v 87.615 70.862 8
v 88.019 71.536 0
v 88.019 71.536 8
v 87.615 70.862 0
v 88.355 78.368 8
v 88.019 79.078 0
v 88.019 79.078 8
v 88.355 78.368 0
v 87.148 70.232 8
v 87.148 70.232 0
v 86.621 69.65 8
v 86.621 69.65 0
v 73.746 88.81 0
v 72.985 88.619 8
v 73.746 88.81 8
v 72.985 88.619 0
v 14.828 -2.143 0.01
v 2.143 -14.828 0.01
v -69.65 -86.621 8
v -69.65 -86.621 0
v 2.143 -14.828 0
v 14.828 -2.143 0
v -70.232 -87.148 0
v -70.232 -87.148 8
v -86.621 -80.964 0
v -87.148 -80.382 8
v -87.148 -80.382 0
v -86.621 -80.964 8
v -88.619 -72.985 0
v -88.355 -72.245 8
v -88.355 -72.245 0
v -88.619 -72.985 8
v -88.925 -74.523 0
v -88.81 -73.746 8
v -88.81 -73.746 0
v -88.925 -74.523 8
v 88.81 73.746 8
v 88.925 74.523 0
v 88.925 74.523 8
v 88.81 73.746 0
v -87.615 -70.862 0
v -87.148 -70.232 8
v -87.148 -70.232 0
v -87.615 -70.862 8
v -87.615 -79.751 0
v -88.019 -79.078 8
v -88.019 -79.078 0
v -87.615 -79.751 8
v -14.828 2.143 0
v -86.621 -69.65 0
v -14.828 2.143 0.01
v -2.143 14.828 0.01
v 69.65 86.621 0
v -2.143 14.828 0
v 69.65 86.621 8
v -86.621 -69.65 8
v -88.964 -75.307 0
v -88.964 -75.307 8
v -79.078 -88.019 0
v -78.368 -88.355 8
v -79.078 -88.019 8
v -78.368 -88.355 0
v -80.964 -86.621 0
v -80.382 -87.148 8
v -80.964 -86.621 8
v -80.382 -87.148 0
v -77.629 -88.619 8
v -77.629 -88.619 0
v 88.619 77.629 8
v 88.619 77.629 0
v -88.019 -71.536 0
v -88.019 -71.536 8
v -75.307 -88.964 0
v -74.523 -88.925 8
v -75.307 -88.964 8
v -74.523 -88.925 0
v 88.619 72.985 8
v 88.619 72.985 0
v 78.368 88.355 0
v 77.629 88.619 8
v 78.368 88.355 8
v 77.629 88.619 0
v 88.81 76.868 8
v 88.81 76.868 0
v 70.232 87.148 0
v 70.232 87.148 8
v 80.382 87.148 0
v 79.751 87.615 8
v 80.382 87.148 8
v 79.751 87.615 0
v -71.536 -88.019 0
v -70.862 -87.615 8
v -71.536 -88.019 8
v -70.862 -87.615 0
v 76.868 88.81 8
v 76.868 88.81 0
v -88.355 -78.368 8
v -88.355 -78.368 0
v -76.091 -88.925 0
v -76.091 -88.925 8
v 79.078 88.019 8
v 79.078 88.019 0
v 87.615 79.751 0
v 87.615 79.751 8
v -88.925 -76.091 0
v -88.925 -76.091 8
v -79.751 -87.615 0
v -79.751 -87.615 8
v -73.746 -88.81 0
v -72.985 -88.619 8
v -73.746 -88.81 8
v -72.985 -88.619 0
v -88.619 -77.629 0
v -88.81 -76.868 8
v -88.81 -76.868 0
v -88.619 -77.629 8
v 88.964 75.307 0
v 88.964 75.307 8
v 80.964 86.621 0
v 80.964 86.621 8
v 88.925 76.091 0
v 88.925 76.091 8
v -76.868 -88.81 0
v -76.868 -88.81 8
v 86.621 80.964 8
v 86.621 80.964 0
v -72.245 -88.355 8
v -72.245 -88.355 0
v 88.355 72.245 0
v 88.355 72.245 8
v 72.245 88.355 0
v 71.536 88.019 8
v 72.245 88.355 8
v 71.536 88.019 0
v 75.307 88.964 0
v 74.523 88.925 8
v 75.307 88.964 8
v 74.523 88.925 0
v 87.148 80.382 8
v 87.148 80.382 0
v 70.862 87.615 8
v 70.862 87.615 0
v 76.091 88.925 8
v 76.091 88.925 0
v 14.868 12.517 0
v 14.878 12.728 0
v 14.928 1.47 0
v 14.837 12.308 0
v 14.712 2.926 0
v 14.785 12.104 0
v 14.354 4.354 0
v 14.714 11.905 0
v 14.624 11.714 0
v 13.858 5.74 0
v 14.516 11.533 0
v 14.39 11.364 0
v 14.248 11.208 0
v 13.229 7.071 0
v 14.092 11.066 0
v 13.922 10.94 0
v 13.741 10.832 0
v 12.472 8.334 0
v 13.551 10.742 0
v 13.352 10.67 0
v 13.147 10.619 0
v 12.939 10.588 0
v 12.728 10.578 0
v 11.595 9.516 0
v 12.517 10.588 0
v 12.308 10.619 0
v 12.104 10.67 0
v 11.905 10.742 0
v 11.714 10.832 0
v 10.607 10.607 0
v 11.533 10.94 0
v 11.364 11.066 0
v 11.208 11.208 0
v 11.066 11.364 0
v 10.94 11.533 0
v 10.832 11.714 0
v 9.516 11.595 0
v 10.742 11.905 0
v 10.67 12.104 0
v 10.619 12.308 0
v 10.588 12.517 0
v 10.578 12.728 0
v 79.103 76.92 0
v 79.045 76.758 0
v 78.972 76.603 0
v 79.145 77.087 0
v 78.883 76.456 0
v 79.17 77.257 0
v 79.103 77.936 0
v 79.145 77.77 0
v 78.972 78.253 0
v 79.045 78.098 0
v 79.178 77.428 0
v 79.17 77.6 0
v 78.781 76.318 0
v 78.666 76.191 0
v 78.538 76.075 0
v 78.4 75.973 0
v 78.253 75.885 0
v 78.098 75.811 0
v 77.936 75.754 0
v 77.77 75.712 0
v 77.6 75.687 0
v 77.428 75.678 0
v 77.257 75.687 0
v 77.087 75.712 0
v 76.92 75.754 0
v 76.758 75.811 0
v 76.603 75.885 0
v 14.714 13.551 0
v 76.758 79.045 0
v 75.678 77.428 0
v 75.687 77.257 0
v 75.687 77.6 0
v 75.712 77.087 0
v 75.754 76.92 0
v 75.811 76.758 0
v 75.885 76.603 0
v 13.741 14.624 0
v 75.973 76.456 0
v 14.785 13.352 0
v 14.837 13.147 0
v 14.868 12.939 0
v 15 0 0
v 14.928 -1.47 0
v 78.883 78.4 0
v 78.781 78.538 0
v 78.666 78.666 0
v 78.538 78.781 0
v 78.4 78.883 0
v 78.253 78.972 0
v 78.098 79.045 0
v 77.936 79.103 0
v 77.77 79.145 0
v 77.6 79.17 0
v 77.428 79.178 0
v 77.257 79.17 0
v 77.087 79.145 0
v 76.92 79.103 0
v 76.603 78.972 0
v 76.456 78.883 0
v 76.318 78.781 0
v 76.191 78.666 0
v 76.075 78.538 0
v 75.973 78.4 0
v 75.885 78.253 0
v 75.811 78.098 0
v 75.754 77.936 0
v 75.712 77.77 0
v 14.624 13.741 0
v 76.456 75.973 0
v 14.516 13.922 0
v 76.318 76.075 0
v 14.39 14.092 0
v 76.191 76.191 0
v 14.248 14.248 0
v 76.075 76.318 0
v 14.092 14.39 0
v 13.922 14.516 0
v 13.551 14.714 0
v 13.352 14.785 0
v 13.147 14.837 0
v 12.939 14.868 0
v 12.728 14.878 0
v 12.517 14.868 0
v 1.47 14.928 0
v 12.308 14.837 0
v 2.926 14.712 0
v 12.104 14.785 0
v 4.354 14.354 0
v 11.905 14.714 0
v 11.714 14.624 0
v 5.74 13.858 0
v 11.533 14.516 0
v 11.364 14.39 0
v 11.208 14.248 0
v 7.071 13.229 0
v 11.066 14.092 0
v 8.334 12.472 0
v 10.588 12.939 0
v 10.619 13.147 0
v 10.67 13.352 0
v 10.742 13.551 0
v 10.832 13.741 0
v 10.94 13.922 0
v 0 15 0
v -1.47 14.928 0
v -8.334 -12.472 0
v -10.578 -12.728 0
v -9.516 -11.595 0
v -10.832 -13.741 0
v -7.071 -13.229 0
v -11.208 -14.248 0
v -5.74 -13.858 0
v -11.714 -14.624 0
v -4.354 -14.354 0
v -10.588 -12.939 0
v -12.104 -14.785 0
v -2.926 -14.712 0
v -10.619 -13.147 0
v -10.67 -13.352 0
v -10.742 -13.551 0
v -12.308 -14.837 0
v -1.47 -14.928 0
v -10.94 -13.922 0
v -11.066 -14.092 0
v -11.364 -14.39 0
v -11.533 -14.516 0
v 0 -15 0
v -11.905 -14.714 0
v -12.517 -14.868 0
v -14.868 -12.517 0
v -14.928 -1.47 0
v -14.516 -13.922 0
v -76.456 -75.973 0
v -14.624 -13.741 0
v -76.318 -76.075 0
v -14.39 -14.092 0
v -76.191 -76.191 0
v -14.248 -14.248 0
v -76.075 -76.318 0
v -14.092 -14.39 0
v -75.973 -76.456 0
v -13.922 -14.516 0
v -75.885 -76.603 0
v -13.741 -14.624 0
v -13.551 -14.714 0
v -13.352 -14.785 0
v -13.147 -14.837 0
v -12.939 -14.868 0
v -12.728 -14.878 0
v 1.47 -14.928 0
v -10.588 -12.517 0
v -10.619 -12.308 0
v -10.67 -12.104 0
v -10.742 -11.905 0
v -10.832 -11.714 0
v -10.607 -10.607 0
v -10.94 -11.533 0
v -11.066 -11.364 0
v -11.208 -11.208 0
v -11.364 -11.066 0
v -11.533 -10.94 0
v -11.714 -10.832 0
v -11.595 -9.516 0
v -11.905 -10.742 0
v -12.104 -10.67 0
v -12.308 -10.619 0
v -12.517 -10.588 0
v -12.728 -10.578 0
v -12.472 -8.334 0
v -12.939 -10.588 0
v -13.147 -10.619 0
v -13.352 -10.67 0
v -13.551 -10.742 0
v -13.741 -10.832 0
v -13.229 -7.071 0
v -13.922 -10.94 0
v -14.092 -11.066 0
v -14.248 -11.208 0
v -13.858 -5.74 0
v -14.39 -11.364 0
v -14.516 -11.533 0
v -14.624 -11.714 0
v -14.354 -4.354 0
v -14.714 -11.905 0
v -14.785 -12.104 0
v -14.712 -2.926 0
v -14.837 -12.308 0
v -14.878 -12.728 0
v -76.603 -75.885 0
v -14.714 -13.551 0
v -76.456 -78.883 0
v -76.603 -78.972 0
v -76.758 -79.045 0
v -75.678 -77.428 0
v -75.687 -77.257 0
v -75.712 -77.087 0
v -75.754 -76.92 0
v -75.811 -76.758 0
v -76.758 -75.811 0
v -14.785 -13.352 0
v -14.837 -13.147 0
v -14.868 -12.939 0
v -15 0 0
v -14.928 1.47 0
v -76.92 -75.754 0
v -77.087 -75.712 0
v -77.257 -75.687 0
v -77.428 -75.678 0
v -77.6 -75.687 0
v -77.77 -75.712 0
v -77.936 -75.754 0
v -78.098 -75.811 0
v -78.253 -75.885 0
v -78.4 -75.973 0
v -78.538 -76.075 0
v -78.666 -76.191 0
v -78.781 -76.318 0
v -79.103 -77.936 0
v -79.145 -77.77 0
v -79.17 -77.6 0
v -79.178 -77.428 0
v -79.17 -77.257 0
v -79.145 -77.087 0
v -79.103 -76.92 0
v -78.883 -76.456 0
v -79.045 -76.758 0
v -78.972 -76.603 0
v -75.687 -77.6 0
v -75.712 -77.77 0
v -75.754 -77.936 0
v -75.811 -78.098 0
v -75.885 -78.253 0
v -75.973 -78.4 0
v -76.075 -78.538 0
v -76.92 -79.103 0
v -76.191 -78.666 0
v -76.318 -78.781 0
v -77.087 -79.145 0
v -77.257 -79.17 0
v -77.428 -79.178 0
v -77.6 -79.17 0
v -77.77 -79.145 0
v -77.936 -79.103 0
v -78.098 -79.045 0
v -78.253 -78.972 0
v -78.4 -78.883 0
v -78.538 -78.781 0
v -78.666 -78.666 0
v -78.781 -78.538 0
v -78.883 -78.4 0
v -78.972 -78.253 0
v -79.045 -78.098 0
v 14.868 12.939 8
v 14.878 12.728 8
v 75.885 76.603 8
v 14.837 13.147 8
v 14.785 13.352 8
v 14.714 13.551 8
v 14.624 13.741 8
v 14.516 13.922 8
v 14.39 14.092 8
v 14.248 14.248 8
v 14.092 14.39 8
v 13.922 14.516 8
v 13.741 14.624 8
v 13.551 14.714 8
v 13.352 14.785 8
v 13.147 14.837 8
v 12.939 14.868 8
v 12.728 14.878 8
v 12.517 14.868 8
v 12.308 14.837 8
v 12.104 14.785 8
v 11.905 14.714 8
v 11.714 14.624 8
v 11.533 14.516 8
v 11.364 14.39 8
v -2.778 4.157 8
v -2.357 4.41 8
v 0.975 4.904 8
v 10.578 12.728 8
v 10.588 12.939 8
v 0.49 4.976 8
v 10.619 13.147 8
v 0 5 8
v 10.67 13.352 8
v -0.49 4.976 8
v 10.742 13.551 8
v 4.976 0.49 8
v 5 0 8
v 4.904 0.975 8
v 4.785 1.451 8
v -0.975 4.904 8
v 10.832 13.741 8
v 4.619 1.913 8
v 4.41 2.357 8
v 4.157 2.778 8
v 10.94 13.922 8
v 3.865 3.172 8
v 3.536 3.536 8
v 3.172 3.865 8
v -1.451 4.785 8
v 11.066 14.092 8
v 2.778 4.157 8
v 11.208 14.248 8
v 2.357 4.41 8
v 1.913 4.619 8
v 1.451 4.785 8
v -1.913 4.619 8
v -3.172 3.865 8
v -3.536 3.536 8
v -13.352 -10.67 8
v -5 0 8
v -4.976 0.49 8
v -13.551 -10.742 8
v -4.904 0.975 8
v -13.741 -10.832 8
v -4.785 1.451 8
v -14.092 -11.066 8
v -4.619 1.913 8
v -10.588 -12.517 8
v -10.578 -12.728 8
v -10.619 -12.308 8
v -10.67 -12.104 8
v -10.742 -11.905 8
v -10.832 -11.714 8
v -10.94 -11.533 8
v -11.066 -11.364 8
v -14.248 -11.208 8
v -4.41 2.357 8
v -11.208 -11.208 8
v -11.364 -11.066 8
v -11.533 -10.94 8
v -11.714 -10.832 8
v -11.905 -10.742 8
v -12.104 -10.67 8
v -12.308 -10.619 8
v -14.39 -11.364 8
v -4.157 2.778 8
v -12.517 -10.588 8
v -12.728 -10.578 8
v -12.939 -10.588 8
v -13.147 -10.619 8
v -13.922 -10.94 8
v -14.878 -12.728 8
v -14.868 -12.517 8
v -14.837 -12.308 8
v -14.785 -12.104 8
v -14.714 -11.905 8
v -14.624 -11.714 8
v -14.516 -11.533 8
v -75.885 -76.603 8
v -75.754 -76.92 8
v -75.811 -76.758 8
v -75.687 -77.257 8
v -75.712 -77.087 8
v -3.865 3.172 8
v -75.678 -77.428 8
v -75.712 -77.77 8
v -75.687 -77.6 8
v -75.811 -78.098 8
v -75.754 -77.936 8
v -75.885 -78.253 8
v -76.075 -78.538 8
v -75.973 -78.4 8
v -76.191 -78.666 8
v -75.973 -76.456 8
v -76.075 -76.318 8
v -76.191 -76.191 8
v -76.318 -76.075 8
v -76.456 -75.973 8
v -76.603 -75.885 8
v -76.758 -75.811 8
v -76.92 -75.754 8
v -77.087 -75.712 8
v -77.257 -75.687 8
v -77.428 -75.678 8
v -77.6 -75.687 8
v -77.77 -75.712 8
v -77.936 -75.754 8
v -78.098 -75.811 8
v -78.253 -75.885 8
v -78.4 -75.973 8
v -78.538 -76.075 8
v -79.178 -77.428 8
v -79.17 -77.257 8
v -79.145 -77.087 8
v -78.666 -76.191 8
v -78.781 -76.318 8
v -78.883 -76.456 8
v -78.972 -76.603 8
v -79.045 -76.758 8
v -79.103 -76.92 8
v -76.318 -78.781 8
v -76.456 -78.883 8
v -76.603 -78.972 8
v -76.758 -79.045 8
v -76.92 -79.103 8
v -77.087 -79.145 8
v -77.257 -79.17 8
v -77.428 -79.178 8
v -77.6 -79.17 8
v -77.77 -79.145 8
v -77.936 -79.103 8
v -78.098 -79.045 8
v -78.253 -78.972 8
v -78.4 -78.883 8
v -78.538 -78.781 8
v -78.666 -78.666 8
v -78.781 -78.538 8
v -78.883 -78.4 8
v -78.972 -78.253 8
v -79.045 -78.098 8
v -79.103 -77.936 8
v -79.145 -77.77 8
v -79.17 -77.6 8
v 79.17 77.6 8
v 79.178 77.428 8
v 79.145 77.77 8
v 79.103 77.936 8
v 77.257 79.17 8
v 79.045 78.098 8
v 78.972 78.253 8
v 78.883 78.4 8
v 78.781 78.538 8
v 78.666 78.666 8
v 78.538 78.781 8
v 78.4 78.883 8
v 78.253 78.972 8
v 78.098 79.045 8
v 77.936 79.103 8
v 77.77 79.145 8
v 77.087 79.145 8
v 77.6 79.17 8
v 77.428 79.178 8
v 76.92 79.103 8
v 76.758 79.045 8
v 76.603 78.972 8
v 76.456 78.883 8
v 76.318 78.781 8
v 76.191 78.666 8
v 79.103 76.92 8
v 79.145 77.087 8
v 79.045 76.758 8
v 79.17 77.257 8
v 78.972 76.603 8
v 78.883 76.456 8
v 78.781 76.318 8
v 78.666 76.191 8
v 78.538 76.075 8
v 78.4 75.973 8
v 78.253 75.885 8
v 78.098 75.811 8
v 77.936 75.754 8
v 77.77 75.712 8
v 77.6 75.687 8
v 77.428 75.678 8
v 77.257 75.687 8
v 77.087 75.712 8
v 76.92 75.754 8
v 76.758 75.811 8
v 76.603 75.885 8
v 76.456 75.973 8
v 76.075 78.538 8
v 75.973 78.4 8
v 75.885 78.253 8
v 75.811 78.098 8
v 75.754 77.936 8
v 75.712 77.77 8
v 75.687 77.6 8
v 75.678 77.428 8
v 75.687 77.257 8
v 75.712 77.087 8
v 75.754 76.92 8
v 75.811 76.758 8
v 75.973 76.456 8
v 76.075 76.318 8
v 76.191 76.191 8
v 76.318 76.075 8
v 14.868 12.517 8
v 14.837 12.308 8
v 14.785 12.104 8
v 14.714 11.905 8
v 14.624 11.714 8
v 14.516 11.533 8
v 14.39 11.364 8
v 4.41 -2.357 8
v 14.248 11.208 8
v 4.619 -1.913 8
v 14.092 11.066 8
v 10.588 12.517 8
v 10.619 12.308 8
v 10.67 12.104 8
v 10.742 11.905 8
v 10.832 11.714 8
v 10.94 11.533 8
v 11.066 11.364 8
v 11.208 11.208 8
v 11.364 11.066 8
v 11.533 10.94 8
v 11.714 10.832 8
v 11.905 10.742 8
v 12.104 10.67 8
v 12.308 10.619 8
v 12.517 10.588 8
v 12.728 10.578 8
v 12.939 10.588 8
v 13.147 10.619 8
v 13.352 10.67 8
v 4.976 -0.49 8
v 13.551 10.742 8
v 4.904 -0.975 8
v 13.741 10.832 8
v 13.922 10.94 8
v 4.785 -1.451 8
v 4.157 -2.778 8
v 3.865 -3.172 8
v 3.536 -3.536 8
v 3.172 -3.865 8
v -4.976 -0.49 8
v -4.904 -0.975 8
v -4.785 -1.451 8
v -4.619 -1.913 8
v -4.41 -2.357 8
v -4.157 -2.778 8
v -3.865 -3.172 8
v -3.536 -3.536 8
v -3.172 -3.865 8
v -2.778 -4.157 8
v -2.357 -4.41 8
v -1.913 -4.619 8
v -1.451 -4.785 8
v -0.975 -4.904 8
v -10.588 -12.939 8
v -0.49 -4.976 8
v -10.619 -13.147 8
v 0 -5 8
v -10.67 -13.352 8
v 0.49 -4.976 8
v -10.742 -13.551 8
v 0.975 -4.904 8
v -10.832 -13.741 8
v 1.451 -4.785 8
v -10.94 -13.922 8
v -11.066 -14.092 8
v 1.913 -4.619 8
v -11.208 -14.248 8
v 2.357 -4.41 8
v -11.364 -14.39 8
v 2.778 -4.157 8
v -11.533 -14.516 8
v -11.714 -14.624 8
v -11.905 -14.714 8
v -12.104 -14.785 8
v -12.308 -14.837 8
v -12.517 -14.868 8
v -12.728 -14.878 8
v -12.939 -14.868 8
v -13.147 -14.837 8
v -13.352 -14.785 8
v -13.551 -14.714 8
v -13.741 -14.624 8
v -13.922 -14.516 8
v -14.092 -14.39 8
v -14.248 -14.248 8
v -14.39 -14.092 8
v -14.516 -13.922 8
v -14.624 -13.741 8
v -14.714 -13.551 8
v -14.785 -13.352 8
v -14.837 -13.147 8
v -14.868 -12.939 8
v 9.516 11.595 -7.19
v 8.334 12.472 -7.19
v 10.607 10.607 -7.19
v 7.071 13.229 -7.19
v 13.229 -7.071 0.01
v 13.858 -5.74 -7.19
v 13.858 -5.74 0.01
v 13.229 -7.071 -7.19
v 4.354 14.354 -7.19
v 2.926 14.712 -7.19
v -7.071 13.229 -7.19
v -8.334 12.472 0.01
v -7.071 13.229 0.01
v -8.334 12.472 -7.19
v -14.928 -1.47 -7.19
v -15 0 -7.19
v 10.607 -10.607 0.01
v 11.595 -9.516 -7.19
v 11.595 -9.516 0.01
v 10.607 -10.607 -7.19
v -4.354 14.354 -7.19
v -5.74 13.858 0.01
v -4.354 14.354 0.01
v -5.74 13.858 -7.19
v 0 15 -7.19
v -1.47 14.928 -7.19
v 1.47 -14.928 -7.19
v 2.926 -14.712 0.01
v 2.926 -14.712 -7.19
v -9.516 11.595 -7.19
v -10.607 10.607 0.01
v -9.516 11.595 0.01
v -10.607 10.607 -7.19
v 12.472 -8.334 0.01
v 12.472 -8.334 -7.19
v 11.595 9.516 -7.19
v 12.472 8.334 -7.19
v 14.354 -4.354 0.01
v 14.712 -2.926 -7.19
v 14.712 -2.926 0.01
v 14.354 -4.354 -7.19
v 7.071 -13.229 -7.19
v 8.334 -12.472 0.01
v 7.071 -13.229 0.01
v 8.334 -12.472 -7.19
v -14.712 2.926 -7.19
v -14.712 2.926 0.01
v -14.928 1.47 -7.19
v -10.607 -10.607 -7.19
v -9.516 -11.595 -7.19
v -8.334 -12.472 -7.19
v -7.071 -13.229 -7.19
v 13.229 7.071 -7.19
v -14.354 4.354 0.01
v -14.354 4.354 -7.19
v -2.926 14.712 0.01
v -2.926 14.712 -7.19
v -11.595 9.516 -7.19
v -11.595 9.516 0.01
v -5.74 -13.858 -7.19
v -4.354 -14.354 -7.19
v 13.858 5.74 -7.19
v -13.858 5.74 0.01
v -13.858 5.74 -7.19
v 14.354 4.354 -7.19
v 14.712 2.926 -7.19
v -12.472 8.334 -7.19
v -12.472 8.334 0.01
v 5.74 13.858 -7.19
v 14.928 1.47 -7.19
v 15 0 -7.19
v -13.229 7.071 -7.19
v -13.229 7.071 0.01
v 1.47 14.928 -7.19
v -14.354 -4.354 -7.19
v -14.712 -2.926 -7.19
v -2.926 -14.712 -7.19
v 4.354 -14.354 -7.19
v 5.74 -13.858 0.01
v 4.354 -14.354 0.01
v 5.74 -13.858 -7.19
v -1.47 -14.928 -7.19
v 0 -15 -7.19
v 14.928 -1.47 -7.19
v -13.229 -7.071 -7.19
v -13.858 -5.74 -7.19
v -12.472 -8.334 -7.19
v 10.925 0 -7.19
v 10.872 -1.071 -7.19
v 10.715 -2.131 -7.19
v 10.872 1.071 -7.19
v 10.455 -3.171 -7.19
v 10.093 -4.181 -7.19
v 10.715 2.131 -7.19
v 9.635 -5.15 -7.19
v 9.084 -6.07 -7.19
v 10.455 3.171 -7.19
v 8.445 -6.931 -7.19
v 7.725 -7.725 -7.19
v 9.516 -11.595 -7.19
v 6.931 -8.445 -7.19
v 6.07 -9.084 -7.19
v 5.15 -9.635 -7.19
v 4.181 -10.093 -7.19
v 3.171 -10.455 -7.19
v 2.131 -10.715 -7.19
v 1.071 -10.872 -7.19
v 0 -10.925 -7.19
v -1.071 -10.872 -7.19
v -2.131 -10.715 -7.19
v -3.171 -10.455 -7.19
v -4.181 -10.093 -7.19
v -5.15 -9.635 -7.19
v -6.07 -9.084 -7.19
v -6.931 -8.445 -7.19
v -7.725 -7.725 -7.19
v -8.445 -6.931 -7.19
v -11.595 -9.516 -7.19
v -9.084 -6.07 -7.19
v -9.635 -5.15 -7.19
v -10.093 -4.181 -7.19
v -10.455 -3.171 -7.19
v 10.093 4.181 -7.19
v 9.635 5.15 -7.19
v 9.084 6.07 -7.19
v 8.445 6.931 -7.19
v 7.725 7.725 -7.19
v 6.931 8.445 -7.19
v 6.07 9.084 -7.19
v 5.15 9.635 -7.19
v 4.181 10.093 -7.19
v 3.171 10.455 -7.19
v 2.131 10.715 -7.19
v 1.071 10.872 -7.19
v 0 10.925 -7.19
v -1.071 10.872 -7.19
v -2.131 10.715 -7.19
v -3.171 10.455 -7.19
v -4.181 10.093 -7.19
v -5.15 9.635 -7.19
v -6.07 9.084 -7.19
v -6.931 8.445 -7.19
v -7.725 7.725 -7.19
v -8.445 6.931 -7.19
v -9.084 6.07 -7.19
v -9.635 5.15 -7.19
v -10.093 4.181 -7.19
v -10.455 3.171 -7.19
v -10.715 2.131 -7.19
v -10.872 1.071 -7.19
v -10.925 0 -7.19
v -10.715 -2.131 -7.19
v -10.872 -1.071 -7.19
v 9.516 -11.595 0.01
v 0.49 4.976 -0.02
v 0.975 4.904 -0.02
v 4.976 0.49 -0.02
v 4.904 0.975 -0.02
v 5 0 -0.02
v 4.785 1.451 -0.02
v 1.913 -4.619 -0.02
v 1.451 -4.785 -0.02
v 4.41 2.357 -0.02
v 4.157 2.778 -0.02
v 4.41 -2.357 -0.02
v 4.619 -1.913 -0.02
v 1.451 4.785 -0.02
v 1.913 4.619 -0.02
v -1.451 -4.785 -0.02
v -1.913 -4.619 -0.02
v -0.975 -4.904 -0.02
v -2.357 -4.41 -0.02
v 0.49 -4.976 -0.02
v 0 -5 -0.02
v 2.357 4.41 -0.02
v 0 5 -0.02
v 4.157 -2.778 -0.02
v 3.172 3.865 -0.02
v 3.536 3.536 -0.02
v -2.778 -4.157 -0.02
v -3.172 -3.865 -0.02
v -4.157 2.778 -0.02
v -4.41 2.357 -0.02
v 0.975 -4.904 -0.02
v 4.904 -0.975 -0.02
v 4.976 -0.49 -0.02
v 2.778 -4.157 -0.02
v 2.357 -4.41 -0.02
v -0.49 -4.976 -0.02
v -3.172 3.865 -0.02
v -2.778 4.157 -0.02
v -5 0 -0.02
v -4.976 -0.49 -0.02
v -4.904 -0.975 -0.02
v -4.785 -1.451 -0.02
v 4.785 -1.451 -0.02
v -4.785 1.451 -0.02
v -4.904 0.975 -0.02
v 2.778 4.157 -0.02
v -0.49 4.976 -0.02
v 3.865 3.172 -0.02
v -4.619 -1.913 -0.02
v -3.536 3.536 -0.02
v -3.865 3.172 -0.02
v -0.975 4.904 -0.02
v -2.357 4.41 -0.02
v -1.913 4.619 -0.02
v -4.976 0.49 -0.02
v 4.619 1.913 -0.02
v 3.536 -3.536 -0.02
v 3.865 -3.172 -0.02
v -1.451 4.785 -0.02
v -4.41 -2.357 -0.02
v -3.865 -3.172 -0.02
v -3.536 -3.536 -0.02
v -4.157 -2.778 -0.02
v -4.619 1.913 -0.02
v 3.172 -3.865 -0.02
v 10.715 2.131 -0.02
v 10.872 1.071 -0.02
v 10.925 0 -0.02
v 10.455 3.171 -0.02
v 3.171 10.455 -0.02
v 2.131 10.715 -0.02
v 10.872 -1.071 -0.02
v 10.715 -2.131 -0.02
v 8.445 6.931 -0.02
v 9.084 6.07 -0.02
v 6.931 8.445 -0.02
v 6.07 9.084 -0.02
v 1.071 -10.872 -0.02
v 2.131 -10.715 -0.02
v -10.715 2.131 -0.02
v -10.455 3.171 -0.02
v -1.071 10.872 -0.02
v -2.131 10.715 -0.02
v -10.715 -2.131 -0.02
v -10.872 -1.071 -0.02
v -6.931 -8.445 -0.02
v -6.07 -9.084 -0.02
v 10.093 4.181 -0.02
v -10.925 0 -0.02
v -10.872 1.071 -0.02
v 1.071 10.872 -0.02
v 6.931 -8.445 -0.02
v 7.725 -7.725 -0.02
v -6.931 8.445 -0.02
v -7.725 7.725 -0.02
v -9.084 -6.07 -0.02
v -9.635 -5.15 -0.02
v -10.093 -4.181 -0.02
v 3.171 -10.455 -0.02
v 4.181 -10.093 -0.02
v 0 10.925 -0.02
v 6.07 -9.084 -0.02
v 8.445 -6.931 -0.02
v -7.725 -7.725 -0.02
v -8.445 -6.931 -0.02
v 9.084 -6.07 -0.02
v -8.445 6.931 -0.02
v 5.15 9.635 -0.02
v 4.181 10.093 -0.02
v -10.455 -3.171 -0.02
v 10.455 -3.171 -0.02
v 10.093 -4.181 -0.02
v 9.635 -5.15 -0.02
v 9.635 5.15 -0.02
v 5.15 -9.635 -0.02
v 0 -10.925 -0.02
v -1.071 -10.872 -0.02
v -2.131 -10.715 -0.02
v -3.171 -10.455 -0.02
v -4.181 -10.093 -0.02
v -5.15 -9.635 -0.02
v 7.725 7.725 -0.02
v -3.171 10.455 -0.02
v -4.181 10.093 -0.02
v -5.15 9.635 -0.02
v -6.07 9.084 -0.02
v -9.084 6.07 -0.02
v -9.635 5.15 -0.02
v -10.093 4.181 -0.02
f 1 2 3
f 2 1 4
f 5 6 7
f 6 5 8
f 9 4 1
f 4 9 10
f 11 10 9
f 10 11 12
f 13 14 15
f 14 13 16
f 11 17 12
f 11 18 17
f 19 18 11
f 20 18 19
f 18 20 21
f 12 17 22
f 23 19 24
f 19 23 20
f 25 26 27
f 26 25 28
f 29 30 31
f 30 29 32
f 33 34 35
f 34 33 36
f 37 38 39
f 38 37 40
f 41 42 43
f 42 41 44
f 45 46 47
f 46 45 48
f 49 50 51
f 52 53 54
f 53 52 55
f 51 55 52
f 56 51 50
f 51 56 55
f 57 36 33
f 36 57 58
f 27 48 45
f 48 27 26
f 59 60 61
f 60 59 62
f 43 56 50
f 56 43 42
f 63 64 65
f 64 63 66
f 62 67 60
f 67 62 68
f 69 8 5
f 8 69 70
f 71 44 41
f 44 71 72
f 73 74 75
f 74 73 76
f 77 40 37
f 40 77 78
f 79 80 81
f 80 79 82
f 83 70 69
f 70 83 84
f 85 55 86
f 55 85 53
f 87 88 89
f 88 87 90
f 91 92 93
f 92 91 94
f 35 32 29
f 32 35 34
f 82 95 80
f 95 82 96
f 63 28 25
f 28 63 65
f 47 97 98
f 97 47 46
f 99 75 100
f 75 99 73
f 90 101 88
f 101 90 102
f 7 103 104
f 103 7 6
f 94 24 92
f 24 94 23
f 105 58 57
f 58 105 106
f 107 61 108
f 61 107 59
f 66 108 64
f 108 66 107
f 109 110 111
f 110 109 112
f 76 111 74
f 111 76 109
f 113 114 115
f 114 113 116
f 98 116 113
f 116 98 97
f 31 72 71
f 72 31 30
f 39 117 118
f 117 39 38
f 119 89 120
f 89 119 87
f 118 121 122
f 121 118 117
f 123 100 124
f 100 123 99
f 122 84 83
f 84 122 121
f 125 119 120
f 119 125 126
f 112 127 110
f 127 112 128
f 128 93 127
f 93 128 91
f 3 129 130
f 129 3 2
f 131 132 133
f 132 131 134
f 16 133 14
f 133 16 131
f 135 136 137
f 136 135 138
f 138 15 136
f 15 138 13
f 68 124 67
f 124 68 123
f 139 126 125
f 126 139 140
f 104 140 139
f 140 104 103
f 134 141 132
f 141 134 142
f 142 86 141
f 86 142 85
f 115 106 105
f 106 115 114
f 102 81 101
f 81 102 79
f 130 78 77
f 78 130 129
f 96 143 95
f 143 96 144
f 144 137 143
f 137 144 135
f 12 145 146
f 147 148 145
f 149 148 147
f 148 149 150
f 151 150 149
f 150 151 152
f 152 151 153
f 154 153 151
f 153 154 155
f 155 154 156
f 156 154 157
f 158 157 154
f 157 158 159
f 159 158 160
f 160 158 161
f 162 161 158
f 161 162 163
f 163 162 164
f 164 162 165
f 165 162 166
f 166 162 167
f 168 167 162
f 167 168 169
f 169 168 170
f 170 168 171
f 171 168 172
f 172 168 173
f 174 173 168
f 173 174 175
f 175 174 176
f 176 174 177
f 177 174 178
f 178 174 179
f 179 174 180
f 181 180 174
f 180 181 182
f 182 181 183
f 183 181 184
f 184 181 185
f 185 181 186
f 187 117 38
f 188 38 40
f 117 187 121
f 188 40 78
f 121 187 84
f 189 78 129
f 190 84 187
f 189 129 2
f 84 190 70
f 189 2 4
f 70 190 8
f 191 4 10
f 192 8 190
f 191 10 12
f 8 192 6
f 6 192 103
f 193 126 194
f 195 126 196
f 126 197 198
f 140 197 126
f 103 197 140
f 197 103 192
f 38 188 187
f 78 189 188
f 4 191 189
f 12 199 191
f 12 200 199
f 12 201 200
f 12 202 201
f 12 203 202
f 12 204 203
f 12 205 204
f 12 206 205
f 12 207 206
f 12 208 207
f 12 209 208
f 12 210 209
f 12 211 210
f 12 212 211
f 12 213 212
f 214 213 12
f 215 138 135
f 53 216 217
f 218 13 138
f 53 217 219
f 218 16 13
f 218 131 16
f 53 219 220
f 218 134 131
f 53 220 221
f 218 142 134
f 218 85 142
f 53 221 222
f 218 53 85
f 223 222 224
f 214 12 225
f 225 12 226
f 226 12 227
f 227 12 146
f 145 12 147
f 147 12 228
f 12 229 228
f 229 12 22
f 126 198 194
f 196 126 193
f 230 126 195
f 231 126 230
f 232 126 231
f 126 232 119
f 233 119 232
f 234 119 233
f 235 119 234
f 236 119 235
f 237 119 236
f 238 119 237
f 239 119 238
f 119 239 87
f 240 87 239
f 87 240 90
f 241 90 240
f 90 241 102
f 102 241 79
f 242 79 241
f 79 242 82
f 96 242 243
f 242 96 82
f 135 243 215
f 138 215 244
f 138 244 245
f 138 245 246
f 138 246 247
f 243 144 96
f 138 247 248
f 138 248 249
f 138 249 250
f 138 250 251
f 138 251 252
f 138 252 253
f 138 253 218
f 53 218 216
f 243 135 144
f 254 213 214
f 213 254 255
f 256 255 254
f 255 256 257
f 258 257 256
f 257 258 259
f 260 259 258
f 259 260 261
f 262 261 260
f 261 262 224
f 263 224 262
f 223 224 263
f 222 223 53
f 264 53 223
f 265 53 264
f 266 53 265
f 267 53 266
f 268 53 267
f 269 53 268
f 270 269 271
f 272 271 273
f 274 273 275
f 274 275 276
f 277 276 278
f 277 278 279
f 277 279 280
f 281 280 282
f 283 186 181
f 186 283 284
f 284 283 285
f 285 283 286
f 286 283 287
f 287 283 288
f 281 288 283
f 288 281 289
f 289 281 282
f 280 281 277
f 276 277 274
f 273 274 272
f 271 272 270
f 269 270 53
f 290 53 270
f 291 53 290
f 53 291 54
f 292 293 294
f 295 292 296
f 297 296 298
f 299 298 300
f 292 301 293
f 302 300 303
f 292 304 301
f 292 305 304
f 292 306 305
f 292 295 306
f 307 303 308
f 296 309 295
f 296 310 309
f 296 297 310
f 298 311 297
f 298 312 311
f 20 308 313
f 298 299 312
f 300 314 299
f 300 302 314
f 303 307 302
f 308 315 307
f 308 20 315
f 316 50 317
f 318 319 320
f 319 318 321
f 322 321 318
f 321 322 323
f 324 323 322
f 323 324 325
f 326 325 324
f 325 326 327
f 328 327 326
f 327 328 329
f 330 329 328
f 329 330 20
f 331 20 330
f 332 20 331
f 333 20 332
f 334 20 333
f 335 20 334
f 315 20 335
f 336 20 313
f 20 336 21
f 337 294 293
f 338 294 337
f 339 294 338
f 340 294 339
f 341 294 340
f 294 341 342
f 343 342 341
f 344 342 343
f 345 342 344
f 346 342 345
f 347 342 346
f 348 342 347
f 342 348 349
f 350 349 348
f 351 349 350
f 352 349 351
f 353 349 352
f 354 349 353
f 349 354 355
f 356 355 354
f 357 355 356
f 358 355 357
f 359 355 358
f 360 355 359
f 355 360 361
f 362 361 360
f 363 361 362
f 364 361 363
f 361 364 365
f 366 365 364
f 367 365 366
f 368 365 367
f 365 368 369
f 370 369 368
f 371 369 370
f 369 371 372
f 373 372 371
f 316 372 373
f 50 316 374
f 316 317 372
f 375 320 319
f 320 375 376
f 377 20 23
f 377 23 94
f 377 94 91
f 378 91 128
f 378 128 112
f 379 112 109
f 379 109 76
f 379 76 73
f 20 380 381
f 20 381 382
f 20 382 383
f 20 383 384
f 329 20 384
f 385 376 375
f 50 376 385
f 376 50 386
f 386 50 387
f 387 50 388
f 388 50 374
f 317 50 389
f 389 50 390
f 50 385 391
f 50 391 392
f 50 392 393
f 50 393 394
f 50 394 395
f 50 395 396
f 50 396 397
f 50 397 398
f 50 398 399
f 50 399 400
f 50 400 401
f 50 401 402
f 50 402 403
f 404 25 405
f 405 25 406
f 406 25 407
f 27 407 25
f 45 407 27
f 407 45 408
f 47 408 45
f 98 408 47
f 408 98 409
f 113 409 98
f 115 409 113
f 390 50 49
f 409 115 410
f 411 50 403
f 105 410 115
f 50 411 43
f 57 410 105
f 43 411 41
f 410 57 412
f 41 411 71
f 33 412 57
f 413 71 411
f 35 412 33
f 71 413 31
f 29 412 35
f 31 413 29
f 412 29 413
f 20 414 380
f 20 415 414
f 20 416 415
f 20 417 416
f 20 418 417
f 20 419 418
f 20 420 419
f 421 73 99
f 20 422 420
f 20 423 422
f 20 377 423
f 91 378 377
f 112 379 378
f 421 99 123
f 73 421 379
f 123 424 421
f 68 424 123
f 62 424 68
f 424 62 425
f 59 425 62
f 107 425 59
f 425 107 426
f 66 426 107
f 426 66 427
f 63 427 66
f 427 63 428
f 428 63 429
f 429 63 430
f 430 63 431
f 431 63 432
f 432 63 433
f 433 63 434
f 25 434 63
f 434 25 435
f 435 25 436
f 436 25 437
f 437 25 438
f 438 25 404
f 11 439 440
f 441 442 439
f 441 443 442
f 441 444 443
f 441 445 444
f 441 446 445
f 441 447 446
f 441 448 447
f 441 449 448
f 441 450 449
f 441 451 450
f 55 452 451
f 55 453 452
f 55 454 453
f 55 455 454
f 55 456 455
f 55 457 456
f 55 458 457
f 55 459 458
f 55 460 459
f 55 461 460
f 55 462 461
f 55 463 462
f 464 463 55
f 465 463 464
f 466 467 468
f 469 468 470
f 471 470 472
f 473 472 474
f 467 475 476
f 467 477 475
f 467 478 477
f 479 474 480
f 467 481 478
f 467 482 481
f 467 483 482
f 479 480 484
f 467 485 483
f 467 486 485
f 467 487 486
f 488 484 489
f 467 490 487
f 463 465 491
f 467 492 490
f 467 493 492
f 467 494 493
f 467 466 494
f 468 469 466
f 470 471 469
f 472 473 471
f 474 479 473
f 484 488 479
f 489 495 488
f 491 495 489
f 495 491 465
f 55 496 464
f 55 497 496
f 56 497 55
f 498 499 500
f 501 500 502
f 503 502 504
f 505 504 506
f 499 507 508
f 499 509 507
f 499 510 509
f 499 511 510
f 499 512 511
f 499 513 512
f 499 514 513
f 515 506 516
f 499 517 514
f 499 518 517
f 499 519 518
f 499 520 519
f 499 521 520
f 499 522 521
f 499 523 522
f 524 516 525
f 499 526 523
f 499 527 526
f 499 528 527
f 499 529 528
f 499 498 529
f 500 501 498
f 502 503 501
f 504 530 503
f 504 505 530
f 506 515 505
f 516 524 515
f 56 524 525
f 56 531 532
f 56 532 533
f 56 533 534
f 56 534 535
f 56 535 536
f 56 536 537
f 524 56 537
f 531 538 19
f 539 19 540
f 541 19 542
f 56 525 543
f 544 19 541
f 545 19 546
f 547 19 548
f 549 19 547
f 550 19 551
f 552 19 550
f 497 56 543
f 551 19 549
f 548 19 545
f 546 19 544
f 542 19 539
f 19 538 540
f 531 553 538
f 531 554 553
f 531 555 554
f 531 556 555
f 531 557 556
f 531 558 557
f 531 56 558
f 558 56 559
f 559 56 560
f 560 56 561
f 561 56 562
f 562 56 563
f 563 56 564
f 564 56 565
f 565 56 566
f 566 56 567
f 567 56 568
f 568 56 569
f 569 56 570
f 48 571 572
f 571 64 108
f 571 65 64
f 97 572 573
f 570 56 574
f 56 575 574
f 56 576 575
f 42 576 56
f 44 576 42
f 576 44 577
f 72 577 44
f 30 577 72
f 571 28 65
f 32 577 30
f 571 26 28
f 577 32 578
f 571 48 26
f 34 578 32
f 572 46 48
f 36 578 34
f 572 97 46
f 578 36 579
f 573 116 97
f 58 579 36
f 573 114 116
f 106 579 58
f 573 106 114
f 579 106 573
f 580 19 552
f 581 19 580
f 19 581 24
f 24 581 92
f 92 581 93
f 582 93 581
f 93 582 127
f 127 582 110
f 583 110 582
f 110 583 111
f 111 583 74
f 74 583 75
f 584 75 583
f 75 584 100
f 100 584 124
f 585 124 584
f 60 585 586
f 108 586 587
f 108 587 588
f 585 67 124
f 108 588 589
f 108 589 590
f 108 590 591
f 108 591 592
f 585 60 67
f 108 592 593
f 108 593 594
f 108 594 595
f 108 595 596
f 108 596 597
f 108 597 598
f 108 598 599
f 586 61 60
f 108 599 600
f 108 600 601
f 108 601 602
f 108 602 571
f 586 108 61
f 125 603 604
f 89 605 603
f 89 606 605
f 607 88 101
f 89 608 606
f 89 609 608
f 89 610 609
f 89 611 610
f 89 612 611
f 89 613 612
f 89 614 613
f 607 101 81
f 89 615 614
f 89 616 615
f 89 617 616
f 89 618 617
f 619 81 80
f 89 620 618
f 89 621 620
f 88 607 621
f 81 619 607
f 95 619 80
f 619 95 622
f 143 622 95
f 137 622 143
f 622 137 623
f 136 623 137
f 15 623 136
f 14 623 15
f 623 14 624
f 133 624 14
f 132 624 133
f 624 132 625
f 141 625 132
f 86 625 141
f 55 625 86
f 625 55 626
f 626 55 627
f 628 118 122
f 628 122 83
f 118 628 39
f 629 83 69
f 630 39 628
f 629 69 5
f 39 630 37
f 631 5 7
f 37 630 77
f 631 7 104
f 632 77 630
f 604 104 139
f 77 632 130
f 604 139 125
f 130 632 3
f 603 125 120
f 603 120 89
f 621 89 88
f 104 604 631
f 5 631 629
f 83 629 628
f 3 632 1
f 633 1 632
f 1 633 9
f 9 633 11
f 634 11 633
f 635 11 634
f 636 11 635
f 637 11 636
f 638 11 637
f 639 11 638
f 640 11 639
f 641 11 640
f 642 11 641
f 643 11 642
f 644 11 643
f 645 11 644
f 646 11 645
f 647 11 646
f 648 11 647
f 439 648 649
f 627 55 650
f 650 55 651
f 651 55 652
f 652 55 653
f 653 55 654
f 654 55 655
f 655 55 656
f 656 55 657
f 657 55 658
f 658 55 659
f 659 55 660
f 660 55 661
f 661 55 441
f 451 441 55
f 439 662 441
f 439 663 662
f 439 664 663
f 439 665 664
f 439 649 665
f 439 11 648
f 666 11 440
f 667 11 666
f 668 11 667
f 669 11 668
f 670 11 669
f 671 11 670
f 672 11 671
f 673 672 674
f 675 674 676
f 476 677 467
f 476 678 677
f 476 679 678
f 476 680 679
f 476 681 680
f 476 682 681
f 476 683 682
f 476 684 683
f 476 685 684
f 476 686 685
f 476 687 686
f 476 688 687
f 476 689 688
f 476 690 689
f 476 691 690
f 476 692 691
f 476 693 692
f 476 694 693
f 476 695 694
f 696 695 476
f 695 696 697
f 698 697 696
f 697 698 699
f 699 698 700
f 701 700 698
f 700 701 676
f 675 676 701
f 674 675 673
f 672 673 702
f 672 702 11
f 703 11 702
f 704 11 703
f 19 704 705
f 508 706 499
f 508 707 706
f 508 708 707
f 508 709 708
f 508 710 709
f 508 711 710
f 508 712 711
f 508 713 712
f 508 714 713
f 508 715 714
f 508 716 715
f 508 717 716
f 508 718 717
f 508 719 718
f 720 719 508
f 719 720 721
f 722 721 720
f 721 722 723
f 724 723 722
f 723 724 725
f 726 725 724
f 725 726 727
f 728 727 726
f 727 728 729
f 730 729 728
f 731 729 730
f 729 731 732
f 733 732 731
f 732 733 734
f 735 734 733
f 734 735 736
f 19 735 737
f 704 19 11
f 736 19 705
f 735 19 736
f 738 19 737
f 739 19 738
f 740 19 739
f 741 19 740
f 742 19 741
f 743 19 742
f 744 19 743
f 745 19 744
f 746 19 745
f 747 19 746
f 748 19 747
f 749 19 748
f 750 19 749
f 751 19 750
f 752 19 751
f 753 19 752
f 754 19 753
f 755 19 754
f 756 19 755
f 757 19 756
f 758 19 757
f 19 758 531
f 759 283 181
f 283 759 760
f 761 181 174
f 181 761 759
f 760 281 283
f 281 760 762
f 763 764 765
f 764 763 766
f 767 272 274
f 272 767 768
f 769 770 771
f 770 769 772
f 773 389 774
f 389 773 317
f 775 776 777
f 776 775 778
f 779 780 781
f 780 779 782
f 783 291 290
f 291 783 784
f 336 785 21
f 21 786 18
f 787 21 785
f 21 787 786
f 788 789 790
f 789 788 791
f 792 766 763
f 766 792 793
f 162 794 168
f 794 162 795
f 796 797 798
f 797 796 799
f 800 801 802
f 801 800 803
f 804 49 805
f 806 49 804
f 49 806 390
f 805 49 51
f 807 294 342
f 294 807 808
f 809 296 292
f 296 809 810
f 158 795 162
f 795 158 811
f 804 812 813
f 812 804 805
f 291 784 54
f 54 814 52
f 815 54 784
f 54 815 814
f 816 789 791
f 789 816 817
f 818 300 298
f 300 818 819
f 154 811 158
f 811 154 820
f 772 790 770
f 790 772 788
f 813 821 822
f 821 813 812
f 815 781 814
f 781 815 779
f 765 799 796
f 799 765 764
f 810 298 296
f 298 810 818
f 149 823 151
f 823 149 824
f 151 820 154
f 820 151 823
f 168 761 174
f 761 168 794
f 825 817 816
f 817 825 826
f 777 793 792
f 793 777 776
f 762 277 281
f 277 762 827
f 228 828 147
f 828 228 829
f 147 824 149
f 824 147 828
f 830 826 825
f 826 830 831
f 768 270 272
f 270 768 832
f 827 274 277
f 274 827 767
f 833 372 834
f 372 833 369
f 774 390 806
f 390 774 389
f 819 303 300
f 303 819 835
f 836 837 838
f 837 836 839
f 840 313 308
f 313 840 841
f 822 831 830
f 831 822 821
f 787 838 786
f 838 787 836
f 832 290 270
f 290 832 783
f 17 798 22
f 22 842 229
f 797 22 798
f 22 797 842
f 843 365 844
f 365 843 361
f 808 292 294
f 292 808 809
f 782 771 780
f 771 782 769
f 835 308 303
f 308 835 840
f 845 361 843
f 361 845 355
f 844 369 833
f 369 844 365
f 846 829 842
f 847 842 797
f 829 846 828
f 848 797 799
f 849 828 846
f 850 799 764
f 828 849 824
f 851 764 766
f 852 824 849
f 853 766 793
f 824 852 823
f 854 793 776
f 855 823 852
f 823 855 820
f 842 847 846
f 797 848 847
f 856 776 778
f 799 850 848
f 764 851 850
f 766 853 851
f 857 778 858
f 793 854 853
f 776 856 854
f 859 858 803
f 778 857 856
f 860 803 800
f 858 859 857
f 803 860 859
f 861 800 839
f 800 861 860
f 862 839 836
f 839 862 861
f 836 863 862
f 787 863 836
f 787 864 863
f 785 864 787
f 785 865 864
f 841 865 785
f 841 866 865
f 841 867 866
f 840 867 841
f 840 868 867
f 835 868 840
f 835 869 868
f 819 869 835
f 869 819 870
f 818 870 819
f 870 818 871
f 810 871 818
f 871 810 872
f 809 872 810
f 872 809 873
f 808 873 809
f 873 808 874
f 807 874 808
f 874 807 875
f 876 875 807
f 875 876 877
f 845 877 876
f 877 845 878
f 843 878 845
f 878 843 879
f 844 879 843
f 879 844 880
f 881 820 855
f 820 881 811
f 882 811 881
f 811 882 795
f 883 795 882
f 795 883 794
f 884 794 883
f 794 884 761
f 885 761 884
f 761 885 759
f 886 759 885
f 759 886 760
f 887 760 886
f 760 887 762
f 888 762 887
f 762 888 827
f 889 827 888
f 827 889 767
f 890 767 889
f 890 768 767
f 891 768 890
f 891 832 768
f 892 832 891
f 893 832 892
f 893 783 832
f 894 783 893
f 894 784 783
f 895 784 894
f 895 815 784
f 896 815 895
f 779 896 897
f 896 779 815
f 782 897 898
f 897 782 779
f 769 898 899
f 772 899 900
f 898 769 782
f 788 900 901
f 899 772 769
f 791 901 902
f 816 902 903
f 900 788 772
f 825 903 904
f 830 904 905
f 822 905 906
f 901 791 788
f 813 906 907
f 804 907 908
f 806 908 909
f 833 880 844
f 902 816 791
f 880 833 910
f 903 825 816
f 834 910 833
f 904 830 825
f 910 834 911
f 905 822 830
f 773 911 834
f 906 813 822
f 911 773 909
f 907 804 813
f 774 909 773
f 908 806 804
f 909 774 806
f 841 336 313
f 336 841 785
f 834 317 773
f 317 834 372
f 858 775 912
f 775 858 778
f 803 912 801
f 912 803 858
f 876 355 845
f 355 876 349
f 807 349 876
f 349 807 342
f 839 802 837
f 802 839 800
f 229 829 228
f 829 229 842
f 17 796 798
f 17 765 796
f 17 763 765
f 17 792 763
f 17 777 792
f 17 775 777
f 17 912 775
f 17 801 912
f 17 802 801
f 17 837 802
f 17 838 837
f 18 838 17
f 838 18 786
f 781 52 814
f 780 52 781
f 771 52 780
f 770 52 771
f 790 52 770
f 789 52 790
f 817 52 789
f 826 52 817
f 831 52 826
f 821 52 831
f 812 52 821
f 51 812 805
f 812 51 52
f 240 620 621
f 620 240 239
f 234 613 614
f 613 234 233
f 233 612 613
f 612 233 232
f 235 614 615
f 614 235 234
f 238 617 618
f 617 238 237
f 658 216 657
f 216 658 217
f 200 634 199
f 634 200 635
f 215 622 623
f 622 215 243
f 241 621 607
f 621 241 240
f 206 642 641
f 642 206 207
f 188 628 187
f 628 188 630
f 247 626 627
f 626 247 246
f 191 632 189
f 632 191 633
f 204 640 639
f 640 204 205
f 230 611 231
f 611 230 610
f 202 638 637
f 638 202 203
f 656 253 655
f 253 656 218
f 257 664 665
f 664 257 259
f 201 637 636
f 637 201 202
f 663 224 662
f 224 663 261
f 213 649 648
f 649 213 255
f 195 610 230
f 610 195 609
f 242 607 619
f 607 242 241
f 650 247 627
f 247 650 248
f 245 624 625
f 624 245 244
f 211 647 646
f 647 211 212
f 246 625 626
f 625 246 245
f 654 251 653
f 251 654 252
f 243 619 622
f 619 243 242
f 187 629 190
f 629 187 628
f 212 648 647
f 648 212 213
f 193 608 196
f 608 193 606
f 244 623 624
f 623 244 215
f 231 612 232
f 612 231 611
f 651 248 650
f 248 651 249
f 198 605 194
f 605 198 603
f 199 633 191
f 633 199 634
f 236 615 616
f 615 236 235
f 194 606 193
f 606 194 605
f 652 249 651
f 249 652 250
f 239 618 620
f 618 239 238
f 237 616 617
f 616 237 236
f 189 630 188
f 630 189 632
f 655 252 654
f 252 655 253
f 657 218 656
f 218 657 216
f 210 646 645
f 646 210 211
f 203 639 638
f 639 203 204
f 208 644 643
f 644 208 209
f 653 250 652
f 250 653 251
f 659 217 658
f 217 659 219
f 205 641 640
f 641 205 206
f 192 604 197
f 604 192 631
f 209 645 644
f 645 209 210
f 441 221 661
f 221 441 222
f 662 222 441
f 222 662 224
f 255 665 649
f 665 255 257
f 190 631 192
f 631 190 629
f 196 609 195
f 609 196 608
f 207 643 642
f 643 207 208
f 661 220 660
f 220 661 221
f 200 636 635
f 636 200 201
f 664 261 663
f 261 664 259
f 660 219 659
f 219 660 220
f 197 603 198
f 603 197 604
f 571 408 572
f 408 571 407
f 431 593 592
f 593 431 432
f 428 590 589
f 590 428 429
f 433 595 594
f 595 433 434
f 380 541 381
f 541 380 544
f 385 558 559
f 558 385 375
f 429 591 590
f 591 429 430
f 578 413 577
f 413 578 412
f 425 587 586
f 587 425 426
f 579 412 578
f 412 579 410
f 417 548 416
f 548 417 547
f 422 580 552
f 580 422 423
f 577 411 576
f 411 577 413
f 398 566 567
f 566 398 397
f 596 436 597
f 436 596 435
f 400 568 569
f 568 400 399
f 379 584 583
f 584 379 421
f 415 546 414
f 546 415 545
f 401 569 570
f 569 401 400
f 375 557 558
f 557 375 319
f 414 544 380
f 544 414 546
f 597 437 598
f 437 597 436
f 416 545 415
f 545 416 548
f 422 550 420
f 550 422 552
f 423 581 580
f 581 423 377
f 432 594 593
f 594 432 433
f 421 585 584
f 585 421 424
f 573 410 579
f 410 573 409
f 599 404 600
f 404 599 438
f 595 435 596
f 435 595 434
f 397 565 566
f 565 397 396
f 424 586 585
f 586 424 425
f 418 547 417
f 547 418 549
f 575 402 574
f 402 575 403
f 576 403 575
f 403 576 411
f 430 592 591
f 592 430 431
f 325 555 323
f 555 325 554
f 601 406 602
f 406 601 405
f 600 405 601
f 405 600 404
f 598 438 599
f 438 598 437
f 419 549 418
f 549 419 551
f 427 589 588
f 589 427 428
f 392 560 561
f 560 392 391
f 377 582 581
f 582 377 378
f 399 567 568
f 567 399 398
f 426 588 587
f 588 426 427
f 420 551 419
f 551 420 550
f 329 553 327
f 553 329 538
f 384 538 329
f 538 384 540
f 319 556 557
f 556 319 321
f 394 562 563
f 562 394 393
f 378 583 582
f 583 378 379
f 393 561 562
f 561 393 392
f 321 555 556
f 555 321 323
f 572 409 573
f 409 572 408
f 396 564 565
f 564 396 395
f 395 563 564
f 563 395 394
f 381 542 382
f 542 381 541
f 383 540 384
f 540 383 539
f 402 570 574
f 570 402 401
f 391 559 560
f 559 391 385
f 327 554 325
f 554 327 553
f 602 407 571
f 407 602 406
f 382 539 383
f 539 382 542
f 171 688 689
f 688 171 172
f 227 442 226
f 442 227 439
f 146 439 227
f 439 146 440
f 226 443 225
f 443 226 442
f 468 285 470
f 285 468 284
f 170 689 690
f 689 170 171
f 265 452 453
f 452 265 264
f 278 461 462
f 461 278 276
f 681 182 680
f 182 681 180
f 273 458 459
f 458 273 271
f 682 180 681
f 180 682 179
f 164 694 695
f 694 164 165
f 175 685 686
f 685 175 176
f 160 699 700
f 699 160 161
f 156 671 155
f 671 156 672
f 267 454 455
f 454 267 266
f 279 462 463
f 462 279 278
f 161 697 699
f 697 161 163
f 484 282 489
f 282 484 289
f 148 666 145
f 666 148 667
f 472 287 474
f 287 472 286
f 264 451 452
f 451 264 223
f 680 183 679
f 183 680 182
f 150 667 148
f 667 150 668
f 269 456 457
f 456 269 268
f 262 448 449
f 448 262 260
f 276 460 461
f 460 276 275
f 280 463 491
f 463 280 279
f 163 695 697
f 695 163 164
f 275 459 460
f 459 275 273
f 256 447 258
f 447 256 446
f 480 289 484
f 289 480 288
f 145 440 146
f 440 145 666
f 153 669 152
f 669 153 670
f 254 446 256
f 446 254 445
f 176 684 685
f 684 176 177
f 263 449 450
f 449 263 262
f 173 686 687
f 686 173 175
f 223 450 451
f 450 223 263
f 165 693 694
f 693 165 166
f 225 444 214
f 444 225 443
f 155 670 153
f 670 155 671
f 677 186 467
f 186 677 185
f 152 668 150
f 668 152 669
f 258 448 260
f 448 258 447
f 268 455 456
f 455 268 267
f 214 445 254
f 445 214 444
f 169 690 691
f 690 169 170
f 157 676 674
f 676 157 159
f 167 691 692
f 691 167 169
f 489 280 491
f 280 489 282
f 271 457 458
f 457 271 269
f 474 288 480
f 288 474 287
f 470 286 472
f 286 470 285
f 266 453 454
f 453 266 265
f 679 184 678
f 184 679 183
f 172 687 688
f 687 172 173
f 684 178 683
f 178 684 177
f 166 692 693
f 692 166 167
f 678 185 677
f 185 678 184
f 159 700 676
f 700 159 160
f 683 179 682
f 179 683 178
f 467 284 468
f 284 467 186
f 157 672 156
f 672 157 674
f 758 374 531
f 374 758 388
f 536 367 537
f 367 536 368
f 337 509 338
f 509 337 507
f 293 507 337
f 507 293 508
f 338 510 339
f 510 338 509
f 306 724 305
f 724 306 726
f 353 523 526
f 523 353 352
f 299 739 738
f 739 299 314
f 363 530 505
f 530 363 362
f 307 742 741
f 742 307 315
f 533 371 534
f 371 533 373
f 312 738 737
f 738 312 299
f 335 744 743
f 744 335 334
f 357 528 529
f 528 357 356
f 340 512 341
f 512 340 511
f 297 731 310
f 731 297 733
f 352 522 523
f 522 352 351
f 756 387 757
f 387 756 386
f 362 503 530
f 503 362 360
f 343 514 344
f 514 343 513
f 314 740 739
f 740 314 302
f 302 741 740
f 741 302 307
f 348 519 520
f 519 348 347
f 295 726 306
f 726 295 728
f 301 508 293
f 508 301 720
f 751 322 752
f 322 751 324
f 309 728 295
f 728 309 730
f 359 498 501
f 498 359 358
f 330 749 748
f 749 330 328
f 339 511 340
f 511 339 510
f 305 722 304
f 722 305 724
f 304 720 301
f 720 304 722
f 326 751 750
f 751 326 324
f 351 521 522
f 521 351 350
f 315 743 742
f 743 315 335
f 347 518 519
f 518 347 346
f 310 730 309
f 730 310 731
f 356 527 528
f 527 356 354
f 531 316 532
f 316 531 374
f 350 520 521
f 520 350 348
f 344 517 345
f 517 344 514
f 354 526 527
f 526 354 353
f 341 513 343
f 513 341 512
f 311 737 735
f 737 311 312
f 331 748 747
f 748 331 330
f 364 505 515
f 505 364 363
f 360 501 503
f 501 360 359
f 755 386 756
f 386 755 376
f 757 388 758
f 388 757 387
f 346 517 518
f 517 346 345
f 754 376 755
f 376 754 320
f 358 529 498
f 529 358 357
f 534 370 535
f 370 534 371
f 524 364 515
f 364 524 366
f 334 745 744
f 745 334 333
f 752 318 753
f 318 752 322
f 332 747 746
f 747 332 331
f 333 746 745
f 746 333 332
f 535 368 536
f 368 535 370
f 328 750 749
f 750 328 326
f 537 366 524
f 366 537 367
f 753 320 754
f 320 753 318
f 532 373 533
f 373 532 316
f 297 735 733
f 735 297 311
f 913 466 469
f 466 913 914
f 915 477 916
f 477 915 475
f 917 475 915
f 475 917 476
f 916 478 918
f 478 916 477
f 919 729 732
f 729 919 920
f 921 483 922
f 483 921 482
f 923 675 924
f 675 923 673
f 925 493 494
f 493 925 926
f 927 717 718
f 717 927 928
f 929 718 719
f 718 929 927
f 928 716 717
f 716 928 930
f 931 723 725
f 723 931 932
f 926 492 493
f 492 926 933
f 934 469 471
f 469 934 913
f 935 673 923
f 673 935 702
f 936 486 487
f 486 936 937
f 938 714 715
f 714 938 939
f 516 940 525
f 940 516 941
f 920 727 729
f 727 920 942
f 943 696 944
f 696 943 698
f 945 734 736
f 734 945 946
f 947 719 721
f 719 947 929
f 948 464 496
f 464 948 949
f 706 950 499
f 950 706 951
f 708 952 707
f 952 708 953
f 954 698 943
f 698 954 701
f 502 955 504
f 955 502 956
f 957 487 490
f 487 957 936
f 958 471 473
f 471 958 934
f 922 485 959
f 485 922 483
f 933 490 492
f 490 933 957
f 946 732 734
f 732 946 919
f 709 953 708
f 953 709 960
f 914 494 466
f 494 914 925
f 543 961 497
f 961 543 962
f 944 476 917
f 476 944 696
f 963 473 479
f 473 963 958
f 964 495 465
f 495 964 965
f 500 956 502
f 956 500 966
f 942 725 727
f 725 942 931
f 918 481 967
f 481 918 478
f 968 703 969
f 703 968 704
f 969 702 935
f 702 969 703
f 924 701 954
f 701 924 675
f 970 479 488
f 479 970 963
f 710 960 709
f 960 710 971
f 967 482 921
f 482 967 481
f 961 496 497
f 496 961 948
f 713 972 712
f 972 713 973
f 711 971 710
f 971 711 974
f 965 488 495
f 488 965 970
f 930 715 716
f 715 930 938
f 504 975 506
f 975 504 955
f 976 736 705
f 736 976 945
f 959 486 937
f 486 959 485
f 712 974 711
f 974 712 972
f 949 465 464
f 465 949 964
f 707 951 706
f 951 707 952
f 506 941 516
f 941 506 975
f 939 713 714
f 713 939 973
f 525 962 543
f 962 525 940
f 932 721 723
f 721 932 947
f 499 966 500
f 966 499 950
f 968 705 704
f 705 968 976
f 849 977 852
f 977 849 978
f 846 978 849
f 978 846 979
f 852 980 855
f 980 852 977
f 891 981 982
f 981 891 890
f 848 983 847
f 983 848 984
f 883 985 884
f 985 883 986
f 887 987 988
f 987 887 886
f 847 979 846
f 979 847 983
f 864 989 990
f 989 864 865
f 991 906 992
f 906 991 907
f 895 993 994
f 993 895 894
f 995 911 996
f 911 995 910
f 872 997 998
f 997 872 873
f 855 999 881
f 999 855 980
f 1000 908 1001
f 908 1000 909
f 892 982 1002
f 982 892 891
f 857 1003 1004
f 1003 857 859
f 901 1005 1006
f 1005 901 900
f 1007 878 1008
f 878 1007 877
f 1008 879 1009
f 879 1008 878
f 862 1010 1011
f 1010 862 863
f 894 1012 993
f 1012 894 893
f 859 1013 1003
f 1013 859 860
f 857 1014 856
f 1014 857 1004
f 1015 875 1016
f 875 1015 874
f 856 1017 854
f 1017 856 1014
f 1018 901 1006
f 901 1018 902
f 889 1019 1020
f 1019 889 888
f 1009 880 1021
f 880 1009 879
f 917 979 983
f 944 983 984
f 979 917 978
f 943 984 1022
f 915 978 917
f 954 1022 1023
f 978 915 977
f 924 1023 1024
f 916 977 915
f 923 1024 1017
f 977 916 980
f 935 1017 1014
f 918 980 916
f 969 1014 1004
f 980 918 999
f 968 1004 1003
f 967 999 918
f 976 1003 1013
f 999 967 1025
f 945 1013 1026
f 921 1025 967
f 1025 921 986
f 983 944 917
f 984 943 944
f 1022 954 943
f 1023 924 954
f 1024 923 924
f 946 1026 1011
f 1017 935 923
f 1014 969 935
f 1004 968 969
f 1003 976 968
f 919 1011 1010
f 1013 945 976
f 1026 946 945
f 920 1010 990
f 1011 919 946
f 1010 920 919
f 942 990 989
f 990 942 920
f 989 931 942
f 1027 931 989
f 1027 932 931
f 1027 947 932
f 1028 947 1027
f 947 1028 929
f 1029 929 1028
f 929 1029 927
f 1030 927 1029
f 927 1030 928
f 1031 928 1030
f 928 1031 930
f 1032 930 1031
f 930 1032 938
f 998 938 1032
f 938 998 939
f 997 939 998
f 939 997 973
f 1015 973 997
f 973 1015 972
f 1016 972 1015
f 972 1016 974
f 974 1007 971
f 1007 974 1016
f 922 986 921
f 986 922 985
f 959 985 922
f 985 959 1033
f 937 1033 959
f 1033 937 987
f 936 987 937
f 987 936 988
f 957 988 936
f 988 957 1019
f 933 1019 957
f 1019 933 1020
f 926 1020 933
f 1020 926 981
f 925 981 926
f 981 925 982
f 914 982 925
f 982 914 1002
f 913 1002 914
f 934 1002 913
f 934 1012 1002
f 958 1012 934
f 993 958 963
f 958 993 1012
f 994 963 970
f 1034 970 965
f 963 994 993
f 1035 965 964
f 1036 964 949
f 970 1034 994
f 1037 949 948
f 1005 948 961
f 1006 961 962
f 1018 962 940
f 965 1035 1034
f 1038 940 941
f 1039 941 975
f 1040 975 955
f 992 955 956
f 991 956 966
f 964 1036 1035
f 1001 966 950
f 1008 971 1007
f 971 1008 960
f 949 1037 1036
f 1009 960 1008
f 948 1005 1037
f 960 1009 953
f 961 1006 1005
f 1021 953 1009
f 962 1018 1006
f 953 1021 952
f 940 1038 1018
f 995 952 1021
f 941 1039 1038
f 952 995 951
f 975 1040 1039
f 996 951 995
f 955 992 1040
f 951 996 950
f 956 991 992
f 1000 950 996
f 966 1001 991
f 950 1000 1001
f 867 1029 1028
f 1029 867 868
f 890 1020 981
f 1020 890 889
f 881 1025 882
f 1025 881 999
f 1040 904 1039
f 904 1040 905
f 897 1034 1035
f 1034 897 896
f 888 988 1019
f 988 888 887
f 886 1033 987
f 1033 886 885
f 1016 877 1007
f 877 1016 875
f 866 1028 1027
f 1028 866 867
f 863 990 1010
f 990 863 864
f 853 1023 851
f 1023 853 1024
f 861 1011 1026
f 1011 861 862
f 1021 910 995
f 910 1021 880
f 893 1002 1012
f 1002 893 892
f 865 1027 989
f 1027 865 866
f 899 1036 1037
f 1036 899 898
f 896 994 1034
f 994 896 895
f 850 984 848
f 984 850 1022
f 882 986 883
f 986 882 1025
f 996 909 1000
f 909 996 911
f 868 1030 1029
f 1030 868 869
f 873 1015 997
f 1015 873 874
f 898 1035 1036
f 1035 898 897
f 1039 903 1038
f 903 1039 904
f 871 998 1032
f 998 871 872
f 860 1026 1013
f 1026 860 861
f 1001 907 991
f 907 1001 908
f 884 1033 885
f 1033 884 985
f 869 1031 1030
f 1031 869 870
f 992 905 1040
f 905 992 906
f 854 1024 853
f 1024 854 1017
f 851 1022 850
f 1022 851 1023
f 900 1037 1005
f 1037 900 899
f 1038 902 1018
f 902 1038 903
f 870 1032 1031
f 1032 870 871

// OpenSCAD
// Gen-CT — front BEARING BRIDGE (bar endbell, 2026-10-10): a 608 boss on a 24 mm wide bar that spans the
// two frame rods at 45 deg and 45+180 deg (R = flange_bolt_r). The front bridge uses the rods at 45/225 deg, the rear
// bridge the rods at 135/315 deg, so the two bridges cross at 90 deg and the stator is held at 4 points.
// A bar instead of a full disc is what lets this big-ring kit fit ONE 410 mm plate. Print flat face DOWN (boss up, no supports).
// Brace holes (temporary M4 jack rods, R = brace_r) sit on the bar axis.
include <parameters.scad>;
$fn = 64;
bar_w = 24;
bar_len = 2 * (flange_bolt_r + 9);
module bar_2d() { offset(r=8) offset(delta=-8) square([bar_len, bar_w], center=true); }
difference() {
    rotate([0, 0, 45]) union() {
        linear_extrude(endbell_thick) bar_2d();
        translate([0, 0, -bearing_h + 0.01]) cylinder(d=30, h=bearing_h);
    }
    translate([0, 0, -bearing_h - 0.1]) cylinder(d=endbell_shaft_clear, h=50);
    translate([0, 0, -bearing_h - 0.02]) cylinder(d=bearing_d, h=bearing_h);
    for (s = [0, 180]) rotate([0, 0, 45 + s]) translate([flange_bolt_r, 0, -20]) cylinder(d=m3_clear, h=60);
    for (a = brace_angles) translate([brace_r*cos(a), brace_r*sin(a), -20]) cylinder(d=brace_d, h=50);
}
